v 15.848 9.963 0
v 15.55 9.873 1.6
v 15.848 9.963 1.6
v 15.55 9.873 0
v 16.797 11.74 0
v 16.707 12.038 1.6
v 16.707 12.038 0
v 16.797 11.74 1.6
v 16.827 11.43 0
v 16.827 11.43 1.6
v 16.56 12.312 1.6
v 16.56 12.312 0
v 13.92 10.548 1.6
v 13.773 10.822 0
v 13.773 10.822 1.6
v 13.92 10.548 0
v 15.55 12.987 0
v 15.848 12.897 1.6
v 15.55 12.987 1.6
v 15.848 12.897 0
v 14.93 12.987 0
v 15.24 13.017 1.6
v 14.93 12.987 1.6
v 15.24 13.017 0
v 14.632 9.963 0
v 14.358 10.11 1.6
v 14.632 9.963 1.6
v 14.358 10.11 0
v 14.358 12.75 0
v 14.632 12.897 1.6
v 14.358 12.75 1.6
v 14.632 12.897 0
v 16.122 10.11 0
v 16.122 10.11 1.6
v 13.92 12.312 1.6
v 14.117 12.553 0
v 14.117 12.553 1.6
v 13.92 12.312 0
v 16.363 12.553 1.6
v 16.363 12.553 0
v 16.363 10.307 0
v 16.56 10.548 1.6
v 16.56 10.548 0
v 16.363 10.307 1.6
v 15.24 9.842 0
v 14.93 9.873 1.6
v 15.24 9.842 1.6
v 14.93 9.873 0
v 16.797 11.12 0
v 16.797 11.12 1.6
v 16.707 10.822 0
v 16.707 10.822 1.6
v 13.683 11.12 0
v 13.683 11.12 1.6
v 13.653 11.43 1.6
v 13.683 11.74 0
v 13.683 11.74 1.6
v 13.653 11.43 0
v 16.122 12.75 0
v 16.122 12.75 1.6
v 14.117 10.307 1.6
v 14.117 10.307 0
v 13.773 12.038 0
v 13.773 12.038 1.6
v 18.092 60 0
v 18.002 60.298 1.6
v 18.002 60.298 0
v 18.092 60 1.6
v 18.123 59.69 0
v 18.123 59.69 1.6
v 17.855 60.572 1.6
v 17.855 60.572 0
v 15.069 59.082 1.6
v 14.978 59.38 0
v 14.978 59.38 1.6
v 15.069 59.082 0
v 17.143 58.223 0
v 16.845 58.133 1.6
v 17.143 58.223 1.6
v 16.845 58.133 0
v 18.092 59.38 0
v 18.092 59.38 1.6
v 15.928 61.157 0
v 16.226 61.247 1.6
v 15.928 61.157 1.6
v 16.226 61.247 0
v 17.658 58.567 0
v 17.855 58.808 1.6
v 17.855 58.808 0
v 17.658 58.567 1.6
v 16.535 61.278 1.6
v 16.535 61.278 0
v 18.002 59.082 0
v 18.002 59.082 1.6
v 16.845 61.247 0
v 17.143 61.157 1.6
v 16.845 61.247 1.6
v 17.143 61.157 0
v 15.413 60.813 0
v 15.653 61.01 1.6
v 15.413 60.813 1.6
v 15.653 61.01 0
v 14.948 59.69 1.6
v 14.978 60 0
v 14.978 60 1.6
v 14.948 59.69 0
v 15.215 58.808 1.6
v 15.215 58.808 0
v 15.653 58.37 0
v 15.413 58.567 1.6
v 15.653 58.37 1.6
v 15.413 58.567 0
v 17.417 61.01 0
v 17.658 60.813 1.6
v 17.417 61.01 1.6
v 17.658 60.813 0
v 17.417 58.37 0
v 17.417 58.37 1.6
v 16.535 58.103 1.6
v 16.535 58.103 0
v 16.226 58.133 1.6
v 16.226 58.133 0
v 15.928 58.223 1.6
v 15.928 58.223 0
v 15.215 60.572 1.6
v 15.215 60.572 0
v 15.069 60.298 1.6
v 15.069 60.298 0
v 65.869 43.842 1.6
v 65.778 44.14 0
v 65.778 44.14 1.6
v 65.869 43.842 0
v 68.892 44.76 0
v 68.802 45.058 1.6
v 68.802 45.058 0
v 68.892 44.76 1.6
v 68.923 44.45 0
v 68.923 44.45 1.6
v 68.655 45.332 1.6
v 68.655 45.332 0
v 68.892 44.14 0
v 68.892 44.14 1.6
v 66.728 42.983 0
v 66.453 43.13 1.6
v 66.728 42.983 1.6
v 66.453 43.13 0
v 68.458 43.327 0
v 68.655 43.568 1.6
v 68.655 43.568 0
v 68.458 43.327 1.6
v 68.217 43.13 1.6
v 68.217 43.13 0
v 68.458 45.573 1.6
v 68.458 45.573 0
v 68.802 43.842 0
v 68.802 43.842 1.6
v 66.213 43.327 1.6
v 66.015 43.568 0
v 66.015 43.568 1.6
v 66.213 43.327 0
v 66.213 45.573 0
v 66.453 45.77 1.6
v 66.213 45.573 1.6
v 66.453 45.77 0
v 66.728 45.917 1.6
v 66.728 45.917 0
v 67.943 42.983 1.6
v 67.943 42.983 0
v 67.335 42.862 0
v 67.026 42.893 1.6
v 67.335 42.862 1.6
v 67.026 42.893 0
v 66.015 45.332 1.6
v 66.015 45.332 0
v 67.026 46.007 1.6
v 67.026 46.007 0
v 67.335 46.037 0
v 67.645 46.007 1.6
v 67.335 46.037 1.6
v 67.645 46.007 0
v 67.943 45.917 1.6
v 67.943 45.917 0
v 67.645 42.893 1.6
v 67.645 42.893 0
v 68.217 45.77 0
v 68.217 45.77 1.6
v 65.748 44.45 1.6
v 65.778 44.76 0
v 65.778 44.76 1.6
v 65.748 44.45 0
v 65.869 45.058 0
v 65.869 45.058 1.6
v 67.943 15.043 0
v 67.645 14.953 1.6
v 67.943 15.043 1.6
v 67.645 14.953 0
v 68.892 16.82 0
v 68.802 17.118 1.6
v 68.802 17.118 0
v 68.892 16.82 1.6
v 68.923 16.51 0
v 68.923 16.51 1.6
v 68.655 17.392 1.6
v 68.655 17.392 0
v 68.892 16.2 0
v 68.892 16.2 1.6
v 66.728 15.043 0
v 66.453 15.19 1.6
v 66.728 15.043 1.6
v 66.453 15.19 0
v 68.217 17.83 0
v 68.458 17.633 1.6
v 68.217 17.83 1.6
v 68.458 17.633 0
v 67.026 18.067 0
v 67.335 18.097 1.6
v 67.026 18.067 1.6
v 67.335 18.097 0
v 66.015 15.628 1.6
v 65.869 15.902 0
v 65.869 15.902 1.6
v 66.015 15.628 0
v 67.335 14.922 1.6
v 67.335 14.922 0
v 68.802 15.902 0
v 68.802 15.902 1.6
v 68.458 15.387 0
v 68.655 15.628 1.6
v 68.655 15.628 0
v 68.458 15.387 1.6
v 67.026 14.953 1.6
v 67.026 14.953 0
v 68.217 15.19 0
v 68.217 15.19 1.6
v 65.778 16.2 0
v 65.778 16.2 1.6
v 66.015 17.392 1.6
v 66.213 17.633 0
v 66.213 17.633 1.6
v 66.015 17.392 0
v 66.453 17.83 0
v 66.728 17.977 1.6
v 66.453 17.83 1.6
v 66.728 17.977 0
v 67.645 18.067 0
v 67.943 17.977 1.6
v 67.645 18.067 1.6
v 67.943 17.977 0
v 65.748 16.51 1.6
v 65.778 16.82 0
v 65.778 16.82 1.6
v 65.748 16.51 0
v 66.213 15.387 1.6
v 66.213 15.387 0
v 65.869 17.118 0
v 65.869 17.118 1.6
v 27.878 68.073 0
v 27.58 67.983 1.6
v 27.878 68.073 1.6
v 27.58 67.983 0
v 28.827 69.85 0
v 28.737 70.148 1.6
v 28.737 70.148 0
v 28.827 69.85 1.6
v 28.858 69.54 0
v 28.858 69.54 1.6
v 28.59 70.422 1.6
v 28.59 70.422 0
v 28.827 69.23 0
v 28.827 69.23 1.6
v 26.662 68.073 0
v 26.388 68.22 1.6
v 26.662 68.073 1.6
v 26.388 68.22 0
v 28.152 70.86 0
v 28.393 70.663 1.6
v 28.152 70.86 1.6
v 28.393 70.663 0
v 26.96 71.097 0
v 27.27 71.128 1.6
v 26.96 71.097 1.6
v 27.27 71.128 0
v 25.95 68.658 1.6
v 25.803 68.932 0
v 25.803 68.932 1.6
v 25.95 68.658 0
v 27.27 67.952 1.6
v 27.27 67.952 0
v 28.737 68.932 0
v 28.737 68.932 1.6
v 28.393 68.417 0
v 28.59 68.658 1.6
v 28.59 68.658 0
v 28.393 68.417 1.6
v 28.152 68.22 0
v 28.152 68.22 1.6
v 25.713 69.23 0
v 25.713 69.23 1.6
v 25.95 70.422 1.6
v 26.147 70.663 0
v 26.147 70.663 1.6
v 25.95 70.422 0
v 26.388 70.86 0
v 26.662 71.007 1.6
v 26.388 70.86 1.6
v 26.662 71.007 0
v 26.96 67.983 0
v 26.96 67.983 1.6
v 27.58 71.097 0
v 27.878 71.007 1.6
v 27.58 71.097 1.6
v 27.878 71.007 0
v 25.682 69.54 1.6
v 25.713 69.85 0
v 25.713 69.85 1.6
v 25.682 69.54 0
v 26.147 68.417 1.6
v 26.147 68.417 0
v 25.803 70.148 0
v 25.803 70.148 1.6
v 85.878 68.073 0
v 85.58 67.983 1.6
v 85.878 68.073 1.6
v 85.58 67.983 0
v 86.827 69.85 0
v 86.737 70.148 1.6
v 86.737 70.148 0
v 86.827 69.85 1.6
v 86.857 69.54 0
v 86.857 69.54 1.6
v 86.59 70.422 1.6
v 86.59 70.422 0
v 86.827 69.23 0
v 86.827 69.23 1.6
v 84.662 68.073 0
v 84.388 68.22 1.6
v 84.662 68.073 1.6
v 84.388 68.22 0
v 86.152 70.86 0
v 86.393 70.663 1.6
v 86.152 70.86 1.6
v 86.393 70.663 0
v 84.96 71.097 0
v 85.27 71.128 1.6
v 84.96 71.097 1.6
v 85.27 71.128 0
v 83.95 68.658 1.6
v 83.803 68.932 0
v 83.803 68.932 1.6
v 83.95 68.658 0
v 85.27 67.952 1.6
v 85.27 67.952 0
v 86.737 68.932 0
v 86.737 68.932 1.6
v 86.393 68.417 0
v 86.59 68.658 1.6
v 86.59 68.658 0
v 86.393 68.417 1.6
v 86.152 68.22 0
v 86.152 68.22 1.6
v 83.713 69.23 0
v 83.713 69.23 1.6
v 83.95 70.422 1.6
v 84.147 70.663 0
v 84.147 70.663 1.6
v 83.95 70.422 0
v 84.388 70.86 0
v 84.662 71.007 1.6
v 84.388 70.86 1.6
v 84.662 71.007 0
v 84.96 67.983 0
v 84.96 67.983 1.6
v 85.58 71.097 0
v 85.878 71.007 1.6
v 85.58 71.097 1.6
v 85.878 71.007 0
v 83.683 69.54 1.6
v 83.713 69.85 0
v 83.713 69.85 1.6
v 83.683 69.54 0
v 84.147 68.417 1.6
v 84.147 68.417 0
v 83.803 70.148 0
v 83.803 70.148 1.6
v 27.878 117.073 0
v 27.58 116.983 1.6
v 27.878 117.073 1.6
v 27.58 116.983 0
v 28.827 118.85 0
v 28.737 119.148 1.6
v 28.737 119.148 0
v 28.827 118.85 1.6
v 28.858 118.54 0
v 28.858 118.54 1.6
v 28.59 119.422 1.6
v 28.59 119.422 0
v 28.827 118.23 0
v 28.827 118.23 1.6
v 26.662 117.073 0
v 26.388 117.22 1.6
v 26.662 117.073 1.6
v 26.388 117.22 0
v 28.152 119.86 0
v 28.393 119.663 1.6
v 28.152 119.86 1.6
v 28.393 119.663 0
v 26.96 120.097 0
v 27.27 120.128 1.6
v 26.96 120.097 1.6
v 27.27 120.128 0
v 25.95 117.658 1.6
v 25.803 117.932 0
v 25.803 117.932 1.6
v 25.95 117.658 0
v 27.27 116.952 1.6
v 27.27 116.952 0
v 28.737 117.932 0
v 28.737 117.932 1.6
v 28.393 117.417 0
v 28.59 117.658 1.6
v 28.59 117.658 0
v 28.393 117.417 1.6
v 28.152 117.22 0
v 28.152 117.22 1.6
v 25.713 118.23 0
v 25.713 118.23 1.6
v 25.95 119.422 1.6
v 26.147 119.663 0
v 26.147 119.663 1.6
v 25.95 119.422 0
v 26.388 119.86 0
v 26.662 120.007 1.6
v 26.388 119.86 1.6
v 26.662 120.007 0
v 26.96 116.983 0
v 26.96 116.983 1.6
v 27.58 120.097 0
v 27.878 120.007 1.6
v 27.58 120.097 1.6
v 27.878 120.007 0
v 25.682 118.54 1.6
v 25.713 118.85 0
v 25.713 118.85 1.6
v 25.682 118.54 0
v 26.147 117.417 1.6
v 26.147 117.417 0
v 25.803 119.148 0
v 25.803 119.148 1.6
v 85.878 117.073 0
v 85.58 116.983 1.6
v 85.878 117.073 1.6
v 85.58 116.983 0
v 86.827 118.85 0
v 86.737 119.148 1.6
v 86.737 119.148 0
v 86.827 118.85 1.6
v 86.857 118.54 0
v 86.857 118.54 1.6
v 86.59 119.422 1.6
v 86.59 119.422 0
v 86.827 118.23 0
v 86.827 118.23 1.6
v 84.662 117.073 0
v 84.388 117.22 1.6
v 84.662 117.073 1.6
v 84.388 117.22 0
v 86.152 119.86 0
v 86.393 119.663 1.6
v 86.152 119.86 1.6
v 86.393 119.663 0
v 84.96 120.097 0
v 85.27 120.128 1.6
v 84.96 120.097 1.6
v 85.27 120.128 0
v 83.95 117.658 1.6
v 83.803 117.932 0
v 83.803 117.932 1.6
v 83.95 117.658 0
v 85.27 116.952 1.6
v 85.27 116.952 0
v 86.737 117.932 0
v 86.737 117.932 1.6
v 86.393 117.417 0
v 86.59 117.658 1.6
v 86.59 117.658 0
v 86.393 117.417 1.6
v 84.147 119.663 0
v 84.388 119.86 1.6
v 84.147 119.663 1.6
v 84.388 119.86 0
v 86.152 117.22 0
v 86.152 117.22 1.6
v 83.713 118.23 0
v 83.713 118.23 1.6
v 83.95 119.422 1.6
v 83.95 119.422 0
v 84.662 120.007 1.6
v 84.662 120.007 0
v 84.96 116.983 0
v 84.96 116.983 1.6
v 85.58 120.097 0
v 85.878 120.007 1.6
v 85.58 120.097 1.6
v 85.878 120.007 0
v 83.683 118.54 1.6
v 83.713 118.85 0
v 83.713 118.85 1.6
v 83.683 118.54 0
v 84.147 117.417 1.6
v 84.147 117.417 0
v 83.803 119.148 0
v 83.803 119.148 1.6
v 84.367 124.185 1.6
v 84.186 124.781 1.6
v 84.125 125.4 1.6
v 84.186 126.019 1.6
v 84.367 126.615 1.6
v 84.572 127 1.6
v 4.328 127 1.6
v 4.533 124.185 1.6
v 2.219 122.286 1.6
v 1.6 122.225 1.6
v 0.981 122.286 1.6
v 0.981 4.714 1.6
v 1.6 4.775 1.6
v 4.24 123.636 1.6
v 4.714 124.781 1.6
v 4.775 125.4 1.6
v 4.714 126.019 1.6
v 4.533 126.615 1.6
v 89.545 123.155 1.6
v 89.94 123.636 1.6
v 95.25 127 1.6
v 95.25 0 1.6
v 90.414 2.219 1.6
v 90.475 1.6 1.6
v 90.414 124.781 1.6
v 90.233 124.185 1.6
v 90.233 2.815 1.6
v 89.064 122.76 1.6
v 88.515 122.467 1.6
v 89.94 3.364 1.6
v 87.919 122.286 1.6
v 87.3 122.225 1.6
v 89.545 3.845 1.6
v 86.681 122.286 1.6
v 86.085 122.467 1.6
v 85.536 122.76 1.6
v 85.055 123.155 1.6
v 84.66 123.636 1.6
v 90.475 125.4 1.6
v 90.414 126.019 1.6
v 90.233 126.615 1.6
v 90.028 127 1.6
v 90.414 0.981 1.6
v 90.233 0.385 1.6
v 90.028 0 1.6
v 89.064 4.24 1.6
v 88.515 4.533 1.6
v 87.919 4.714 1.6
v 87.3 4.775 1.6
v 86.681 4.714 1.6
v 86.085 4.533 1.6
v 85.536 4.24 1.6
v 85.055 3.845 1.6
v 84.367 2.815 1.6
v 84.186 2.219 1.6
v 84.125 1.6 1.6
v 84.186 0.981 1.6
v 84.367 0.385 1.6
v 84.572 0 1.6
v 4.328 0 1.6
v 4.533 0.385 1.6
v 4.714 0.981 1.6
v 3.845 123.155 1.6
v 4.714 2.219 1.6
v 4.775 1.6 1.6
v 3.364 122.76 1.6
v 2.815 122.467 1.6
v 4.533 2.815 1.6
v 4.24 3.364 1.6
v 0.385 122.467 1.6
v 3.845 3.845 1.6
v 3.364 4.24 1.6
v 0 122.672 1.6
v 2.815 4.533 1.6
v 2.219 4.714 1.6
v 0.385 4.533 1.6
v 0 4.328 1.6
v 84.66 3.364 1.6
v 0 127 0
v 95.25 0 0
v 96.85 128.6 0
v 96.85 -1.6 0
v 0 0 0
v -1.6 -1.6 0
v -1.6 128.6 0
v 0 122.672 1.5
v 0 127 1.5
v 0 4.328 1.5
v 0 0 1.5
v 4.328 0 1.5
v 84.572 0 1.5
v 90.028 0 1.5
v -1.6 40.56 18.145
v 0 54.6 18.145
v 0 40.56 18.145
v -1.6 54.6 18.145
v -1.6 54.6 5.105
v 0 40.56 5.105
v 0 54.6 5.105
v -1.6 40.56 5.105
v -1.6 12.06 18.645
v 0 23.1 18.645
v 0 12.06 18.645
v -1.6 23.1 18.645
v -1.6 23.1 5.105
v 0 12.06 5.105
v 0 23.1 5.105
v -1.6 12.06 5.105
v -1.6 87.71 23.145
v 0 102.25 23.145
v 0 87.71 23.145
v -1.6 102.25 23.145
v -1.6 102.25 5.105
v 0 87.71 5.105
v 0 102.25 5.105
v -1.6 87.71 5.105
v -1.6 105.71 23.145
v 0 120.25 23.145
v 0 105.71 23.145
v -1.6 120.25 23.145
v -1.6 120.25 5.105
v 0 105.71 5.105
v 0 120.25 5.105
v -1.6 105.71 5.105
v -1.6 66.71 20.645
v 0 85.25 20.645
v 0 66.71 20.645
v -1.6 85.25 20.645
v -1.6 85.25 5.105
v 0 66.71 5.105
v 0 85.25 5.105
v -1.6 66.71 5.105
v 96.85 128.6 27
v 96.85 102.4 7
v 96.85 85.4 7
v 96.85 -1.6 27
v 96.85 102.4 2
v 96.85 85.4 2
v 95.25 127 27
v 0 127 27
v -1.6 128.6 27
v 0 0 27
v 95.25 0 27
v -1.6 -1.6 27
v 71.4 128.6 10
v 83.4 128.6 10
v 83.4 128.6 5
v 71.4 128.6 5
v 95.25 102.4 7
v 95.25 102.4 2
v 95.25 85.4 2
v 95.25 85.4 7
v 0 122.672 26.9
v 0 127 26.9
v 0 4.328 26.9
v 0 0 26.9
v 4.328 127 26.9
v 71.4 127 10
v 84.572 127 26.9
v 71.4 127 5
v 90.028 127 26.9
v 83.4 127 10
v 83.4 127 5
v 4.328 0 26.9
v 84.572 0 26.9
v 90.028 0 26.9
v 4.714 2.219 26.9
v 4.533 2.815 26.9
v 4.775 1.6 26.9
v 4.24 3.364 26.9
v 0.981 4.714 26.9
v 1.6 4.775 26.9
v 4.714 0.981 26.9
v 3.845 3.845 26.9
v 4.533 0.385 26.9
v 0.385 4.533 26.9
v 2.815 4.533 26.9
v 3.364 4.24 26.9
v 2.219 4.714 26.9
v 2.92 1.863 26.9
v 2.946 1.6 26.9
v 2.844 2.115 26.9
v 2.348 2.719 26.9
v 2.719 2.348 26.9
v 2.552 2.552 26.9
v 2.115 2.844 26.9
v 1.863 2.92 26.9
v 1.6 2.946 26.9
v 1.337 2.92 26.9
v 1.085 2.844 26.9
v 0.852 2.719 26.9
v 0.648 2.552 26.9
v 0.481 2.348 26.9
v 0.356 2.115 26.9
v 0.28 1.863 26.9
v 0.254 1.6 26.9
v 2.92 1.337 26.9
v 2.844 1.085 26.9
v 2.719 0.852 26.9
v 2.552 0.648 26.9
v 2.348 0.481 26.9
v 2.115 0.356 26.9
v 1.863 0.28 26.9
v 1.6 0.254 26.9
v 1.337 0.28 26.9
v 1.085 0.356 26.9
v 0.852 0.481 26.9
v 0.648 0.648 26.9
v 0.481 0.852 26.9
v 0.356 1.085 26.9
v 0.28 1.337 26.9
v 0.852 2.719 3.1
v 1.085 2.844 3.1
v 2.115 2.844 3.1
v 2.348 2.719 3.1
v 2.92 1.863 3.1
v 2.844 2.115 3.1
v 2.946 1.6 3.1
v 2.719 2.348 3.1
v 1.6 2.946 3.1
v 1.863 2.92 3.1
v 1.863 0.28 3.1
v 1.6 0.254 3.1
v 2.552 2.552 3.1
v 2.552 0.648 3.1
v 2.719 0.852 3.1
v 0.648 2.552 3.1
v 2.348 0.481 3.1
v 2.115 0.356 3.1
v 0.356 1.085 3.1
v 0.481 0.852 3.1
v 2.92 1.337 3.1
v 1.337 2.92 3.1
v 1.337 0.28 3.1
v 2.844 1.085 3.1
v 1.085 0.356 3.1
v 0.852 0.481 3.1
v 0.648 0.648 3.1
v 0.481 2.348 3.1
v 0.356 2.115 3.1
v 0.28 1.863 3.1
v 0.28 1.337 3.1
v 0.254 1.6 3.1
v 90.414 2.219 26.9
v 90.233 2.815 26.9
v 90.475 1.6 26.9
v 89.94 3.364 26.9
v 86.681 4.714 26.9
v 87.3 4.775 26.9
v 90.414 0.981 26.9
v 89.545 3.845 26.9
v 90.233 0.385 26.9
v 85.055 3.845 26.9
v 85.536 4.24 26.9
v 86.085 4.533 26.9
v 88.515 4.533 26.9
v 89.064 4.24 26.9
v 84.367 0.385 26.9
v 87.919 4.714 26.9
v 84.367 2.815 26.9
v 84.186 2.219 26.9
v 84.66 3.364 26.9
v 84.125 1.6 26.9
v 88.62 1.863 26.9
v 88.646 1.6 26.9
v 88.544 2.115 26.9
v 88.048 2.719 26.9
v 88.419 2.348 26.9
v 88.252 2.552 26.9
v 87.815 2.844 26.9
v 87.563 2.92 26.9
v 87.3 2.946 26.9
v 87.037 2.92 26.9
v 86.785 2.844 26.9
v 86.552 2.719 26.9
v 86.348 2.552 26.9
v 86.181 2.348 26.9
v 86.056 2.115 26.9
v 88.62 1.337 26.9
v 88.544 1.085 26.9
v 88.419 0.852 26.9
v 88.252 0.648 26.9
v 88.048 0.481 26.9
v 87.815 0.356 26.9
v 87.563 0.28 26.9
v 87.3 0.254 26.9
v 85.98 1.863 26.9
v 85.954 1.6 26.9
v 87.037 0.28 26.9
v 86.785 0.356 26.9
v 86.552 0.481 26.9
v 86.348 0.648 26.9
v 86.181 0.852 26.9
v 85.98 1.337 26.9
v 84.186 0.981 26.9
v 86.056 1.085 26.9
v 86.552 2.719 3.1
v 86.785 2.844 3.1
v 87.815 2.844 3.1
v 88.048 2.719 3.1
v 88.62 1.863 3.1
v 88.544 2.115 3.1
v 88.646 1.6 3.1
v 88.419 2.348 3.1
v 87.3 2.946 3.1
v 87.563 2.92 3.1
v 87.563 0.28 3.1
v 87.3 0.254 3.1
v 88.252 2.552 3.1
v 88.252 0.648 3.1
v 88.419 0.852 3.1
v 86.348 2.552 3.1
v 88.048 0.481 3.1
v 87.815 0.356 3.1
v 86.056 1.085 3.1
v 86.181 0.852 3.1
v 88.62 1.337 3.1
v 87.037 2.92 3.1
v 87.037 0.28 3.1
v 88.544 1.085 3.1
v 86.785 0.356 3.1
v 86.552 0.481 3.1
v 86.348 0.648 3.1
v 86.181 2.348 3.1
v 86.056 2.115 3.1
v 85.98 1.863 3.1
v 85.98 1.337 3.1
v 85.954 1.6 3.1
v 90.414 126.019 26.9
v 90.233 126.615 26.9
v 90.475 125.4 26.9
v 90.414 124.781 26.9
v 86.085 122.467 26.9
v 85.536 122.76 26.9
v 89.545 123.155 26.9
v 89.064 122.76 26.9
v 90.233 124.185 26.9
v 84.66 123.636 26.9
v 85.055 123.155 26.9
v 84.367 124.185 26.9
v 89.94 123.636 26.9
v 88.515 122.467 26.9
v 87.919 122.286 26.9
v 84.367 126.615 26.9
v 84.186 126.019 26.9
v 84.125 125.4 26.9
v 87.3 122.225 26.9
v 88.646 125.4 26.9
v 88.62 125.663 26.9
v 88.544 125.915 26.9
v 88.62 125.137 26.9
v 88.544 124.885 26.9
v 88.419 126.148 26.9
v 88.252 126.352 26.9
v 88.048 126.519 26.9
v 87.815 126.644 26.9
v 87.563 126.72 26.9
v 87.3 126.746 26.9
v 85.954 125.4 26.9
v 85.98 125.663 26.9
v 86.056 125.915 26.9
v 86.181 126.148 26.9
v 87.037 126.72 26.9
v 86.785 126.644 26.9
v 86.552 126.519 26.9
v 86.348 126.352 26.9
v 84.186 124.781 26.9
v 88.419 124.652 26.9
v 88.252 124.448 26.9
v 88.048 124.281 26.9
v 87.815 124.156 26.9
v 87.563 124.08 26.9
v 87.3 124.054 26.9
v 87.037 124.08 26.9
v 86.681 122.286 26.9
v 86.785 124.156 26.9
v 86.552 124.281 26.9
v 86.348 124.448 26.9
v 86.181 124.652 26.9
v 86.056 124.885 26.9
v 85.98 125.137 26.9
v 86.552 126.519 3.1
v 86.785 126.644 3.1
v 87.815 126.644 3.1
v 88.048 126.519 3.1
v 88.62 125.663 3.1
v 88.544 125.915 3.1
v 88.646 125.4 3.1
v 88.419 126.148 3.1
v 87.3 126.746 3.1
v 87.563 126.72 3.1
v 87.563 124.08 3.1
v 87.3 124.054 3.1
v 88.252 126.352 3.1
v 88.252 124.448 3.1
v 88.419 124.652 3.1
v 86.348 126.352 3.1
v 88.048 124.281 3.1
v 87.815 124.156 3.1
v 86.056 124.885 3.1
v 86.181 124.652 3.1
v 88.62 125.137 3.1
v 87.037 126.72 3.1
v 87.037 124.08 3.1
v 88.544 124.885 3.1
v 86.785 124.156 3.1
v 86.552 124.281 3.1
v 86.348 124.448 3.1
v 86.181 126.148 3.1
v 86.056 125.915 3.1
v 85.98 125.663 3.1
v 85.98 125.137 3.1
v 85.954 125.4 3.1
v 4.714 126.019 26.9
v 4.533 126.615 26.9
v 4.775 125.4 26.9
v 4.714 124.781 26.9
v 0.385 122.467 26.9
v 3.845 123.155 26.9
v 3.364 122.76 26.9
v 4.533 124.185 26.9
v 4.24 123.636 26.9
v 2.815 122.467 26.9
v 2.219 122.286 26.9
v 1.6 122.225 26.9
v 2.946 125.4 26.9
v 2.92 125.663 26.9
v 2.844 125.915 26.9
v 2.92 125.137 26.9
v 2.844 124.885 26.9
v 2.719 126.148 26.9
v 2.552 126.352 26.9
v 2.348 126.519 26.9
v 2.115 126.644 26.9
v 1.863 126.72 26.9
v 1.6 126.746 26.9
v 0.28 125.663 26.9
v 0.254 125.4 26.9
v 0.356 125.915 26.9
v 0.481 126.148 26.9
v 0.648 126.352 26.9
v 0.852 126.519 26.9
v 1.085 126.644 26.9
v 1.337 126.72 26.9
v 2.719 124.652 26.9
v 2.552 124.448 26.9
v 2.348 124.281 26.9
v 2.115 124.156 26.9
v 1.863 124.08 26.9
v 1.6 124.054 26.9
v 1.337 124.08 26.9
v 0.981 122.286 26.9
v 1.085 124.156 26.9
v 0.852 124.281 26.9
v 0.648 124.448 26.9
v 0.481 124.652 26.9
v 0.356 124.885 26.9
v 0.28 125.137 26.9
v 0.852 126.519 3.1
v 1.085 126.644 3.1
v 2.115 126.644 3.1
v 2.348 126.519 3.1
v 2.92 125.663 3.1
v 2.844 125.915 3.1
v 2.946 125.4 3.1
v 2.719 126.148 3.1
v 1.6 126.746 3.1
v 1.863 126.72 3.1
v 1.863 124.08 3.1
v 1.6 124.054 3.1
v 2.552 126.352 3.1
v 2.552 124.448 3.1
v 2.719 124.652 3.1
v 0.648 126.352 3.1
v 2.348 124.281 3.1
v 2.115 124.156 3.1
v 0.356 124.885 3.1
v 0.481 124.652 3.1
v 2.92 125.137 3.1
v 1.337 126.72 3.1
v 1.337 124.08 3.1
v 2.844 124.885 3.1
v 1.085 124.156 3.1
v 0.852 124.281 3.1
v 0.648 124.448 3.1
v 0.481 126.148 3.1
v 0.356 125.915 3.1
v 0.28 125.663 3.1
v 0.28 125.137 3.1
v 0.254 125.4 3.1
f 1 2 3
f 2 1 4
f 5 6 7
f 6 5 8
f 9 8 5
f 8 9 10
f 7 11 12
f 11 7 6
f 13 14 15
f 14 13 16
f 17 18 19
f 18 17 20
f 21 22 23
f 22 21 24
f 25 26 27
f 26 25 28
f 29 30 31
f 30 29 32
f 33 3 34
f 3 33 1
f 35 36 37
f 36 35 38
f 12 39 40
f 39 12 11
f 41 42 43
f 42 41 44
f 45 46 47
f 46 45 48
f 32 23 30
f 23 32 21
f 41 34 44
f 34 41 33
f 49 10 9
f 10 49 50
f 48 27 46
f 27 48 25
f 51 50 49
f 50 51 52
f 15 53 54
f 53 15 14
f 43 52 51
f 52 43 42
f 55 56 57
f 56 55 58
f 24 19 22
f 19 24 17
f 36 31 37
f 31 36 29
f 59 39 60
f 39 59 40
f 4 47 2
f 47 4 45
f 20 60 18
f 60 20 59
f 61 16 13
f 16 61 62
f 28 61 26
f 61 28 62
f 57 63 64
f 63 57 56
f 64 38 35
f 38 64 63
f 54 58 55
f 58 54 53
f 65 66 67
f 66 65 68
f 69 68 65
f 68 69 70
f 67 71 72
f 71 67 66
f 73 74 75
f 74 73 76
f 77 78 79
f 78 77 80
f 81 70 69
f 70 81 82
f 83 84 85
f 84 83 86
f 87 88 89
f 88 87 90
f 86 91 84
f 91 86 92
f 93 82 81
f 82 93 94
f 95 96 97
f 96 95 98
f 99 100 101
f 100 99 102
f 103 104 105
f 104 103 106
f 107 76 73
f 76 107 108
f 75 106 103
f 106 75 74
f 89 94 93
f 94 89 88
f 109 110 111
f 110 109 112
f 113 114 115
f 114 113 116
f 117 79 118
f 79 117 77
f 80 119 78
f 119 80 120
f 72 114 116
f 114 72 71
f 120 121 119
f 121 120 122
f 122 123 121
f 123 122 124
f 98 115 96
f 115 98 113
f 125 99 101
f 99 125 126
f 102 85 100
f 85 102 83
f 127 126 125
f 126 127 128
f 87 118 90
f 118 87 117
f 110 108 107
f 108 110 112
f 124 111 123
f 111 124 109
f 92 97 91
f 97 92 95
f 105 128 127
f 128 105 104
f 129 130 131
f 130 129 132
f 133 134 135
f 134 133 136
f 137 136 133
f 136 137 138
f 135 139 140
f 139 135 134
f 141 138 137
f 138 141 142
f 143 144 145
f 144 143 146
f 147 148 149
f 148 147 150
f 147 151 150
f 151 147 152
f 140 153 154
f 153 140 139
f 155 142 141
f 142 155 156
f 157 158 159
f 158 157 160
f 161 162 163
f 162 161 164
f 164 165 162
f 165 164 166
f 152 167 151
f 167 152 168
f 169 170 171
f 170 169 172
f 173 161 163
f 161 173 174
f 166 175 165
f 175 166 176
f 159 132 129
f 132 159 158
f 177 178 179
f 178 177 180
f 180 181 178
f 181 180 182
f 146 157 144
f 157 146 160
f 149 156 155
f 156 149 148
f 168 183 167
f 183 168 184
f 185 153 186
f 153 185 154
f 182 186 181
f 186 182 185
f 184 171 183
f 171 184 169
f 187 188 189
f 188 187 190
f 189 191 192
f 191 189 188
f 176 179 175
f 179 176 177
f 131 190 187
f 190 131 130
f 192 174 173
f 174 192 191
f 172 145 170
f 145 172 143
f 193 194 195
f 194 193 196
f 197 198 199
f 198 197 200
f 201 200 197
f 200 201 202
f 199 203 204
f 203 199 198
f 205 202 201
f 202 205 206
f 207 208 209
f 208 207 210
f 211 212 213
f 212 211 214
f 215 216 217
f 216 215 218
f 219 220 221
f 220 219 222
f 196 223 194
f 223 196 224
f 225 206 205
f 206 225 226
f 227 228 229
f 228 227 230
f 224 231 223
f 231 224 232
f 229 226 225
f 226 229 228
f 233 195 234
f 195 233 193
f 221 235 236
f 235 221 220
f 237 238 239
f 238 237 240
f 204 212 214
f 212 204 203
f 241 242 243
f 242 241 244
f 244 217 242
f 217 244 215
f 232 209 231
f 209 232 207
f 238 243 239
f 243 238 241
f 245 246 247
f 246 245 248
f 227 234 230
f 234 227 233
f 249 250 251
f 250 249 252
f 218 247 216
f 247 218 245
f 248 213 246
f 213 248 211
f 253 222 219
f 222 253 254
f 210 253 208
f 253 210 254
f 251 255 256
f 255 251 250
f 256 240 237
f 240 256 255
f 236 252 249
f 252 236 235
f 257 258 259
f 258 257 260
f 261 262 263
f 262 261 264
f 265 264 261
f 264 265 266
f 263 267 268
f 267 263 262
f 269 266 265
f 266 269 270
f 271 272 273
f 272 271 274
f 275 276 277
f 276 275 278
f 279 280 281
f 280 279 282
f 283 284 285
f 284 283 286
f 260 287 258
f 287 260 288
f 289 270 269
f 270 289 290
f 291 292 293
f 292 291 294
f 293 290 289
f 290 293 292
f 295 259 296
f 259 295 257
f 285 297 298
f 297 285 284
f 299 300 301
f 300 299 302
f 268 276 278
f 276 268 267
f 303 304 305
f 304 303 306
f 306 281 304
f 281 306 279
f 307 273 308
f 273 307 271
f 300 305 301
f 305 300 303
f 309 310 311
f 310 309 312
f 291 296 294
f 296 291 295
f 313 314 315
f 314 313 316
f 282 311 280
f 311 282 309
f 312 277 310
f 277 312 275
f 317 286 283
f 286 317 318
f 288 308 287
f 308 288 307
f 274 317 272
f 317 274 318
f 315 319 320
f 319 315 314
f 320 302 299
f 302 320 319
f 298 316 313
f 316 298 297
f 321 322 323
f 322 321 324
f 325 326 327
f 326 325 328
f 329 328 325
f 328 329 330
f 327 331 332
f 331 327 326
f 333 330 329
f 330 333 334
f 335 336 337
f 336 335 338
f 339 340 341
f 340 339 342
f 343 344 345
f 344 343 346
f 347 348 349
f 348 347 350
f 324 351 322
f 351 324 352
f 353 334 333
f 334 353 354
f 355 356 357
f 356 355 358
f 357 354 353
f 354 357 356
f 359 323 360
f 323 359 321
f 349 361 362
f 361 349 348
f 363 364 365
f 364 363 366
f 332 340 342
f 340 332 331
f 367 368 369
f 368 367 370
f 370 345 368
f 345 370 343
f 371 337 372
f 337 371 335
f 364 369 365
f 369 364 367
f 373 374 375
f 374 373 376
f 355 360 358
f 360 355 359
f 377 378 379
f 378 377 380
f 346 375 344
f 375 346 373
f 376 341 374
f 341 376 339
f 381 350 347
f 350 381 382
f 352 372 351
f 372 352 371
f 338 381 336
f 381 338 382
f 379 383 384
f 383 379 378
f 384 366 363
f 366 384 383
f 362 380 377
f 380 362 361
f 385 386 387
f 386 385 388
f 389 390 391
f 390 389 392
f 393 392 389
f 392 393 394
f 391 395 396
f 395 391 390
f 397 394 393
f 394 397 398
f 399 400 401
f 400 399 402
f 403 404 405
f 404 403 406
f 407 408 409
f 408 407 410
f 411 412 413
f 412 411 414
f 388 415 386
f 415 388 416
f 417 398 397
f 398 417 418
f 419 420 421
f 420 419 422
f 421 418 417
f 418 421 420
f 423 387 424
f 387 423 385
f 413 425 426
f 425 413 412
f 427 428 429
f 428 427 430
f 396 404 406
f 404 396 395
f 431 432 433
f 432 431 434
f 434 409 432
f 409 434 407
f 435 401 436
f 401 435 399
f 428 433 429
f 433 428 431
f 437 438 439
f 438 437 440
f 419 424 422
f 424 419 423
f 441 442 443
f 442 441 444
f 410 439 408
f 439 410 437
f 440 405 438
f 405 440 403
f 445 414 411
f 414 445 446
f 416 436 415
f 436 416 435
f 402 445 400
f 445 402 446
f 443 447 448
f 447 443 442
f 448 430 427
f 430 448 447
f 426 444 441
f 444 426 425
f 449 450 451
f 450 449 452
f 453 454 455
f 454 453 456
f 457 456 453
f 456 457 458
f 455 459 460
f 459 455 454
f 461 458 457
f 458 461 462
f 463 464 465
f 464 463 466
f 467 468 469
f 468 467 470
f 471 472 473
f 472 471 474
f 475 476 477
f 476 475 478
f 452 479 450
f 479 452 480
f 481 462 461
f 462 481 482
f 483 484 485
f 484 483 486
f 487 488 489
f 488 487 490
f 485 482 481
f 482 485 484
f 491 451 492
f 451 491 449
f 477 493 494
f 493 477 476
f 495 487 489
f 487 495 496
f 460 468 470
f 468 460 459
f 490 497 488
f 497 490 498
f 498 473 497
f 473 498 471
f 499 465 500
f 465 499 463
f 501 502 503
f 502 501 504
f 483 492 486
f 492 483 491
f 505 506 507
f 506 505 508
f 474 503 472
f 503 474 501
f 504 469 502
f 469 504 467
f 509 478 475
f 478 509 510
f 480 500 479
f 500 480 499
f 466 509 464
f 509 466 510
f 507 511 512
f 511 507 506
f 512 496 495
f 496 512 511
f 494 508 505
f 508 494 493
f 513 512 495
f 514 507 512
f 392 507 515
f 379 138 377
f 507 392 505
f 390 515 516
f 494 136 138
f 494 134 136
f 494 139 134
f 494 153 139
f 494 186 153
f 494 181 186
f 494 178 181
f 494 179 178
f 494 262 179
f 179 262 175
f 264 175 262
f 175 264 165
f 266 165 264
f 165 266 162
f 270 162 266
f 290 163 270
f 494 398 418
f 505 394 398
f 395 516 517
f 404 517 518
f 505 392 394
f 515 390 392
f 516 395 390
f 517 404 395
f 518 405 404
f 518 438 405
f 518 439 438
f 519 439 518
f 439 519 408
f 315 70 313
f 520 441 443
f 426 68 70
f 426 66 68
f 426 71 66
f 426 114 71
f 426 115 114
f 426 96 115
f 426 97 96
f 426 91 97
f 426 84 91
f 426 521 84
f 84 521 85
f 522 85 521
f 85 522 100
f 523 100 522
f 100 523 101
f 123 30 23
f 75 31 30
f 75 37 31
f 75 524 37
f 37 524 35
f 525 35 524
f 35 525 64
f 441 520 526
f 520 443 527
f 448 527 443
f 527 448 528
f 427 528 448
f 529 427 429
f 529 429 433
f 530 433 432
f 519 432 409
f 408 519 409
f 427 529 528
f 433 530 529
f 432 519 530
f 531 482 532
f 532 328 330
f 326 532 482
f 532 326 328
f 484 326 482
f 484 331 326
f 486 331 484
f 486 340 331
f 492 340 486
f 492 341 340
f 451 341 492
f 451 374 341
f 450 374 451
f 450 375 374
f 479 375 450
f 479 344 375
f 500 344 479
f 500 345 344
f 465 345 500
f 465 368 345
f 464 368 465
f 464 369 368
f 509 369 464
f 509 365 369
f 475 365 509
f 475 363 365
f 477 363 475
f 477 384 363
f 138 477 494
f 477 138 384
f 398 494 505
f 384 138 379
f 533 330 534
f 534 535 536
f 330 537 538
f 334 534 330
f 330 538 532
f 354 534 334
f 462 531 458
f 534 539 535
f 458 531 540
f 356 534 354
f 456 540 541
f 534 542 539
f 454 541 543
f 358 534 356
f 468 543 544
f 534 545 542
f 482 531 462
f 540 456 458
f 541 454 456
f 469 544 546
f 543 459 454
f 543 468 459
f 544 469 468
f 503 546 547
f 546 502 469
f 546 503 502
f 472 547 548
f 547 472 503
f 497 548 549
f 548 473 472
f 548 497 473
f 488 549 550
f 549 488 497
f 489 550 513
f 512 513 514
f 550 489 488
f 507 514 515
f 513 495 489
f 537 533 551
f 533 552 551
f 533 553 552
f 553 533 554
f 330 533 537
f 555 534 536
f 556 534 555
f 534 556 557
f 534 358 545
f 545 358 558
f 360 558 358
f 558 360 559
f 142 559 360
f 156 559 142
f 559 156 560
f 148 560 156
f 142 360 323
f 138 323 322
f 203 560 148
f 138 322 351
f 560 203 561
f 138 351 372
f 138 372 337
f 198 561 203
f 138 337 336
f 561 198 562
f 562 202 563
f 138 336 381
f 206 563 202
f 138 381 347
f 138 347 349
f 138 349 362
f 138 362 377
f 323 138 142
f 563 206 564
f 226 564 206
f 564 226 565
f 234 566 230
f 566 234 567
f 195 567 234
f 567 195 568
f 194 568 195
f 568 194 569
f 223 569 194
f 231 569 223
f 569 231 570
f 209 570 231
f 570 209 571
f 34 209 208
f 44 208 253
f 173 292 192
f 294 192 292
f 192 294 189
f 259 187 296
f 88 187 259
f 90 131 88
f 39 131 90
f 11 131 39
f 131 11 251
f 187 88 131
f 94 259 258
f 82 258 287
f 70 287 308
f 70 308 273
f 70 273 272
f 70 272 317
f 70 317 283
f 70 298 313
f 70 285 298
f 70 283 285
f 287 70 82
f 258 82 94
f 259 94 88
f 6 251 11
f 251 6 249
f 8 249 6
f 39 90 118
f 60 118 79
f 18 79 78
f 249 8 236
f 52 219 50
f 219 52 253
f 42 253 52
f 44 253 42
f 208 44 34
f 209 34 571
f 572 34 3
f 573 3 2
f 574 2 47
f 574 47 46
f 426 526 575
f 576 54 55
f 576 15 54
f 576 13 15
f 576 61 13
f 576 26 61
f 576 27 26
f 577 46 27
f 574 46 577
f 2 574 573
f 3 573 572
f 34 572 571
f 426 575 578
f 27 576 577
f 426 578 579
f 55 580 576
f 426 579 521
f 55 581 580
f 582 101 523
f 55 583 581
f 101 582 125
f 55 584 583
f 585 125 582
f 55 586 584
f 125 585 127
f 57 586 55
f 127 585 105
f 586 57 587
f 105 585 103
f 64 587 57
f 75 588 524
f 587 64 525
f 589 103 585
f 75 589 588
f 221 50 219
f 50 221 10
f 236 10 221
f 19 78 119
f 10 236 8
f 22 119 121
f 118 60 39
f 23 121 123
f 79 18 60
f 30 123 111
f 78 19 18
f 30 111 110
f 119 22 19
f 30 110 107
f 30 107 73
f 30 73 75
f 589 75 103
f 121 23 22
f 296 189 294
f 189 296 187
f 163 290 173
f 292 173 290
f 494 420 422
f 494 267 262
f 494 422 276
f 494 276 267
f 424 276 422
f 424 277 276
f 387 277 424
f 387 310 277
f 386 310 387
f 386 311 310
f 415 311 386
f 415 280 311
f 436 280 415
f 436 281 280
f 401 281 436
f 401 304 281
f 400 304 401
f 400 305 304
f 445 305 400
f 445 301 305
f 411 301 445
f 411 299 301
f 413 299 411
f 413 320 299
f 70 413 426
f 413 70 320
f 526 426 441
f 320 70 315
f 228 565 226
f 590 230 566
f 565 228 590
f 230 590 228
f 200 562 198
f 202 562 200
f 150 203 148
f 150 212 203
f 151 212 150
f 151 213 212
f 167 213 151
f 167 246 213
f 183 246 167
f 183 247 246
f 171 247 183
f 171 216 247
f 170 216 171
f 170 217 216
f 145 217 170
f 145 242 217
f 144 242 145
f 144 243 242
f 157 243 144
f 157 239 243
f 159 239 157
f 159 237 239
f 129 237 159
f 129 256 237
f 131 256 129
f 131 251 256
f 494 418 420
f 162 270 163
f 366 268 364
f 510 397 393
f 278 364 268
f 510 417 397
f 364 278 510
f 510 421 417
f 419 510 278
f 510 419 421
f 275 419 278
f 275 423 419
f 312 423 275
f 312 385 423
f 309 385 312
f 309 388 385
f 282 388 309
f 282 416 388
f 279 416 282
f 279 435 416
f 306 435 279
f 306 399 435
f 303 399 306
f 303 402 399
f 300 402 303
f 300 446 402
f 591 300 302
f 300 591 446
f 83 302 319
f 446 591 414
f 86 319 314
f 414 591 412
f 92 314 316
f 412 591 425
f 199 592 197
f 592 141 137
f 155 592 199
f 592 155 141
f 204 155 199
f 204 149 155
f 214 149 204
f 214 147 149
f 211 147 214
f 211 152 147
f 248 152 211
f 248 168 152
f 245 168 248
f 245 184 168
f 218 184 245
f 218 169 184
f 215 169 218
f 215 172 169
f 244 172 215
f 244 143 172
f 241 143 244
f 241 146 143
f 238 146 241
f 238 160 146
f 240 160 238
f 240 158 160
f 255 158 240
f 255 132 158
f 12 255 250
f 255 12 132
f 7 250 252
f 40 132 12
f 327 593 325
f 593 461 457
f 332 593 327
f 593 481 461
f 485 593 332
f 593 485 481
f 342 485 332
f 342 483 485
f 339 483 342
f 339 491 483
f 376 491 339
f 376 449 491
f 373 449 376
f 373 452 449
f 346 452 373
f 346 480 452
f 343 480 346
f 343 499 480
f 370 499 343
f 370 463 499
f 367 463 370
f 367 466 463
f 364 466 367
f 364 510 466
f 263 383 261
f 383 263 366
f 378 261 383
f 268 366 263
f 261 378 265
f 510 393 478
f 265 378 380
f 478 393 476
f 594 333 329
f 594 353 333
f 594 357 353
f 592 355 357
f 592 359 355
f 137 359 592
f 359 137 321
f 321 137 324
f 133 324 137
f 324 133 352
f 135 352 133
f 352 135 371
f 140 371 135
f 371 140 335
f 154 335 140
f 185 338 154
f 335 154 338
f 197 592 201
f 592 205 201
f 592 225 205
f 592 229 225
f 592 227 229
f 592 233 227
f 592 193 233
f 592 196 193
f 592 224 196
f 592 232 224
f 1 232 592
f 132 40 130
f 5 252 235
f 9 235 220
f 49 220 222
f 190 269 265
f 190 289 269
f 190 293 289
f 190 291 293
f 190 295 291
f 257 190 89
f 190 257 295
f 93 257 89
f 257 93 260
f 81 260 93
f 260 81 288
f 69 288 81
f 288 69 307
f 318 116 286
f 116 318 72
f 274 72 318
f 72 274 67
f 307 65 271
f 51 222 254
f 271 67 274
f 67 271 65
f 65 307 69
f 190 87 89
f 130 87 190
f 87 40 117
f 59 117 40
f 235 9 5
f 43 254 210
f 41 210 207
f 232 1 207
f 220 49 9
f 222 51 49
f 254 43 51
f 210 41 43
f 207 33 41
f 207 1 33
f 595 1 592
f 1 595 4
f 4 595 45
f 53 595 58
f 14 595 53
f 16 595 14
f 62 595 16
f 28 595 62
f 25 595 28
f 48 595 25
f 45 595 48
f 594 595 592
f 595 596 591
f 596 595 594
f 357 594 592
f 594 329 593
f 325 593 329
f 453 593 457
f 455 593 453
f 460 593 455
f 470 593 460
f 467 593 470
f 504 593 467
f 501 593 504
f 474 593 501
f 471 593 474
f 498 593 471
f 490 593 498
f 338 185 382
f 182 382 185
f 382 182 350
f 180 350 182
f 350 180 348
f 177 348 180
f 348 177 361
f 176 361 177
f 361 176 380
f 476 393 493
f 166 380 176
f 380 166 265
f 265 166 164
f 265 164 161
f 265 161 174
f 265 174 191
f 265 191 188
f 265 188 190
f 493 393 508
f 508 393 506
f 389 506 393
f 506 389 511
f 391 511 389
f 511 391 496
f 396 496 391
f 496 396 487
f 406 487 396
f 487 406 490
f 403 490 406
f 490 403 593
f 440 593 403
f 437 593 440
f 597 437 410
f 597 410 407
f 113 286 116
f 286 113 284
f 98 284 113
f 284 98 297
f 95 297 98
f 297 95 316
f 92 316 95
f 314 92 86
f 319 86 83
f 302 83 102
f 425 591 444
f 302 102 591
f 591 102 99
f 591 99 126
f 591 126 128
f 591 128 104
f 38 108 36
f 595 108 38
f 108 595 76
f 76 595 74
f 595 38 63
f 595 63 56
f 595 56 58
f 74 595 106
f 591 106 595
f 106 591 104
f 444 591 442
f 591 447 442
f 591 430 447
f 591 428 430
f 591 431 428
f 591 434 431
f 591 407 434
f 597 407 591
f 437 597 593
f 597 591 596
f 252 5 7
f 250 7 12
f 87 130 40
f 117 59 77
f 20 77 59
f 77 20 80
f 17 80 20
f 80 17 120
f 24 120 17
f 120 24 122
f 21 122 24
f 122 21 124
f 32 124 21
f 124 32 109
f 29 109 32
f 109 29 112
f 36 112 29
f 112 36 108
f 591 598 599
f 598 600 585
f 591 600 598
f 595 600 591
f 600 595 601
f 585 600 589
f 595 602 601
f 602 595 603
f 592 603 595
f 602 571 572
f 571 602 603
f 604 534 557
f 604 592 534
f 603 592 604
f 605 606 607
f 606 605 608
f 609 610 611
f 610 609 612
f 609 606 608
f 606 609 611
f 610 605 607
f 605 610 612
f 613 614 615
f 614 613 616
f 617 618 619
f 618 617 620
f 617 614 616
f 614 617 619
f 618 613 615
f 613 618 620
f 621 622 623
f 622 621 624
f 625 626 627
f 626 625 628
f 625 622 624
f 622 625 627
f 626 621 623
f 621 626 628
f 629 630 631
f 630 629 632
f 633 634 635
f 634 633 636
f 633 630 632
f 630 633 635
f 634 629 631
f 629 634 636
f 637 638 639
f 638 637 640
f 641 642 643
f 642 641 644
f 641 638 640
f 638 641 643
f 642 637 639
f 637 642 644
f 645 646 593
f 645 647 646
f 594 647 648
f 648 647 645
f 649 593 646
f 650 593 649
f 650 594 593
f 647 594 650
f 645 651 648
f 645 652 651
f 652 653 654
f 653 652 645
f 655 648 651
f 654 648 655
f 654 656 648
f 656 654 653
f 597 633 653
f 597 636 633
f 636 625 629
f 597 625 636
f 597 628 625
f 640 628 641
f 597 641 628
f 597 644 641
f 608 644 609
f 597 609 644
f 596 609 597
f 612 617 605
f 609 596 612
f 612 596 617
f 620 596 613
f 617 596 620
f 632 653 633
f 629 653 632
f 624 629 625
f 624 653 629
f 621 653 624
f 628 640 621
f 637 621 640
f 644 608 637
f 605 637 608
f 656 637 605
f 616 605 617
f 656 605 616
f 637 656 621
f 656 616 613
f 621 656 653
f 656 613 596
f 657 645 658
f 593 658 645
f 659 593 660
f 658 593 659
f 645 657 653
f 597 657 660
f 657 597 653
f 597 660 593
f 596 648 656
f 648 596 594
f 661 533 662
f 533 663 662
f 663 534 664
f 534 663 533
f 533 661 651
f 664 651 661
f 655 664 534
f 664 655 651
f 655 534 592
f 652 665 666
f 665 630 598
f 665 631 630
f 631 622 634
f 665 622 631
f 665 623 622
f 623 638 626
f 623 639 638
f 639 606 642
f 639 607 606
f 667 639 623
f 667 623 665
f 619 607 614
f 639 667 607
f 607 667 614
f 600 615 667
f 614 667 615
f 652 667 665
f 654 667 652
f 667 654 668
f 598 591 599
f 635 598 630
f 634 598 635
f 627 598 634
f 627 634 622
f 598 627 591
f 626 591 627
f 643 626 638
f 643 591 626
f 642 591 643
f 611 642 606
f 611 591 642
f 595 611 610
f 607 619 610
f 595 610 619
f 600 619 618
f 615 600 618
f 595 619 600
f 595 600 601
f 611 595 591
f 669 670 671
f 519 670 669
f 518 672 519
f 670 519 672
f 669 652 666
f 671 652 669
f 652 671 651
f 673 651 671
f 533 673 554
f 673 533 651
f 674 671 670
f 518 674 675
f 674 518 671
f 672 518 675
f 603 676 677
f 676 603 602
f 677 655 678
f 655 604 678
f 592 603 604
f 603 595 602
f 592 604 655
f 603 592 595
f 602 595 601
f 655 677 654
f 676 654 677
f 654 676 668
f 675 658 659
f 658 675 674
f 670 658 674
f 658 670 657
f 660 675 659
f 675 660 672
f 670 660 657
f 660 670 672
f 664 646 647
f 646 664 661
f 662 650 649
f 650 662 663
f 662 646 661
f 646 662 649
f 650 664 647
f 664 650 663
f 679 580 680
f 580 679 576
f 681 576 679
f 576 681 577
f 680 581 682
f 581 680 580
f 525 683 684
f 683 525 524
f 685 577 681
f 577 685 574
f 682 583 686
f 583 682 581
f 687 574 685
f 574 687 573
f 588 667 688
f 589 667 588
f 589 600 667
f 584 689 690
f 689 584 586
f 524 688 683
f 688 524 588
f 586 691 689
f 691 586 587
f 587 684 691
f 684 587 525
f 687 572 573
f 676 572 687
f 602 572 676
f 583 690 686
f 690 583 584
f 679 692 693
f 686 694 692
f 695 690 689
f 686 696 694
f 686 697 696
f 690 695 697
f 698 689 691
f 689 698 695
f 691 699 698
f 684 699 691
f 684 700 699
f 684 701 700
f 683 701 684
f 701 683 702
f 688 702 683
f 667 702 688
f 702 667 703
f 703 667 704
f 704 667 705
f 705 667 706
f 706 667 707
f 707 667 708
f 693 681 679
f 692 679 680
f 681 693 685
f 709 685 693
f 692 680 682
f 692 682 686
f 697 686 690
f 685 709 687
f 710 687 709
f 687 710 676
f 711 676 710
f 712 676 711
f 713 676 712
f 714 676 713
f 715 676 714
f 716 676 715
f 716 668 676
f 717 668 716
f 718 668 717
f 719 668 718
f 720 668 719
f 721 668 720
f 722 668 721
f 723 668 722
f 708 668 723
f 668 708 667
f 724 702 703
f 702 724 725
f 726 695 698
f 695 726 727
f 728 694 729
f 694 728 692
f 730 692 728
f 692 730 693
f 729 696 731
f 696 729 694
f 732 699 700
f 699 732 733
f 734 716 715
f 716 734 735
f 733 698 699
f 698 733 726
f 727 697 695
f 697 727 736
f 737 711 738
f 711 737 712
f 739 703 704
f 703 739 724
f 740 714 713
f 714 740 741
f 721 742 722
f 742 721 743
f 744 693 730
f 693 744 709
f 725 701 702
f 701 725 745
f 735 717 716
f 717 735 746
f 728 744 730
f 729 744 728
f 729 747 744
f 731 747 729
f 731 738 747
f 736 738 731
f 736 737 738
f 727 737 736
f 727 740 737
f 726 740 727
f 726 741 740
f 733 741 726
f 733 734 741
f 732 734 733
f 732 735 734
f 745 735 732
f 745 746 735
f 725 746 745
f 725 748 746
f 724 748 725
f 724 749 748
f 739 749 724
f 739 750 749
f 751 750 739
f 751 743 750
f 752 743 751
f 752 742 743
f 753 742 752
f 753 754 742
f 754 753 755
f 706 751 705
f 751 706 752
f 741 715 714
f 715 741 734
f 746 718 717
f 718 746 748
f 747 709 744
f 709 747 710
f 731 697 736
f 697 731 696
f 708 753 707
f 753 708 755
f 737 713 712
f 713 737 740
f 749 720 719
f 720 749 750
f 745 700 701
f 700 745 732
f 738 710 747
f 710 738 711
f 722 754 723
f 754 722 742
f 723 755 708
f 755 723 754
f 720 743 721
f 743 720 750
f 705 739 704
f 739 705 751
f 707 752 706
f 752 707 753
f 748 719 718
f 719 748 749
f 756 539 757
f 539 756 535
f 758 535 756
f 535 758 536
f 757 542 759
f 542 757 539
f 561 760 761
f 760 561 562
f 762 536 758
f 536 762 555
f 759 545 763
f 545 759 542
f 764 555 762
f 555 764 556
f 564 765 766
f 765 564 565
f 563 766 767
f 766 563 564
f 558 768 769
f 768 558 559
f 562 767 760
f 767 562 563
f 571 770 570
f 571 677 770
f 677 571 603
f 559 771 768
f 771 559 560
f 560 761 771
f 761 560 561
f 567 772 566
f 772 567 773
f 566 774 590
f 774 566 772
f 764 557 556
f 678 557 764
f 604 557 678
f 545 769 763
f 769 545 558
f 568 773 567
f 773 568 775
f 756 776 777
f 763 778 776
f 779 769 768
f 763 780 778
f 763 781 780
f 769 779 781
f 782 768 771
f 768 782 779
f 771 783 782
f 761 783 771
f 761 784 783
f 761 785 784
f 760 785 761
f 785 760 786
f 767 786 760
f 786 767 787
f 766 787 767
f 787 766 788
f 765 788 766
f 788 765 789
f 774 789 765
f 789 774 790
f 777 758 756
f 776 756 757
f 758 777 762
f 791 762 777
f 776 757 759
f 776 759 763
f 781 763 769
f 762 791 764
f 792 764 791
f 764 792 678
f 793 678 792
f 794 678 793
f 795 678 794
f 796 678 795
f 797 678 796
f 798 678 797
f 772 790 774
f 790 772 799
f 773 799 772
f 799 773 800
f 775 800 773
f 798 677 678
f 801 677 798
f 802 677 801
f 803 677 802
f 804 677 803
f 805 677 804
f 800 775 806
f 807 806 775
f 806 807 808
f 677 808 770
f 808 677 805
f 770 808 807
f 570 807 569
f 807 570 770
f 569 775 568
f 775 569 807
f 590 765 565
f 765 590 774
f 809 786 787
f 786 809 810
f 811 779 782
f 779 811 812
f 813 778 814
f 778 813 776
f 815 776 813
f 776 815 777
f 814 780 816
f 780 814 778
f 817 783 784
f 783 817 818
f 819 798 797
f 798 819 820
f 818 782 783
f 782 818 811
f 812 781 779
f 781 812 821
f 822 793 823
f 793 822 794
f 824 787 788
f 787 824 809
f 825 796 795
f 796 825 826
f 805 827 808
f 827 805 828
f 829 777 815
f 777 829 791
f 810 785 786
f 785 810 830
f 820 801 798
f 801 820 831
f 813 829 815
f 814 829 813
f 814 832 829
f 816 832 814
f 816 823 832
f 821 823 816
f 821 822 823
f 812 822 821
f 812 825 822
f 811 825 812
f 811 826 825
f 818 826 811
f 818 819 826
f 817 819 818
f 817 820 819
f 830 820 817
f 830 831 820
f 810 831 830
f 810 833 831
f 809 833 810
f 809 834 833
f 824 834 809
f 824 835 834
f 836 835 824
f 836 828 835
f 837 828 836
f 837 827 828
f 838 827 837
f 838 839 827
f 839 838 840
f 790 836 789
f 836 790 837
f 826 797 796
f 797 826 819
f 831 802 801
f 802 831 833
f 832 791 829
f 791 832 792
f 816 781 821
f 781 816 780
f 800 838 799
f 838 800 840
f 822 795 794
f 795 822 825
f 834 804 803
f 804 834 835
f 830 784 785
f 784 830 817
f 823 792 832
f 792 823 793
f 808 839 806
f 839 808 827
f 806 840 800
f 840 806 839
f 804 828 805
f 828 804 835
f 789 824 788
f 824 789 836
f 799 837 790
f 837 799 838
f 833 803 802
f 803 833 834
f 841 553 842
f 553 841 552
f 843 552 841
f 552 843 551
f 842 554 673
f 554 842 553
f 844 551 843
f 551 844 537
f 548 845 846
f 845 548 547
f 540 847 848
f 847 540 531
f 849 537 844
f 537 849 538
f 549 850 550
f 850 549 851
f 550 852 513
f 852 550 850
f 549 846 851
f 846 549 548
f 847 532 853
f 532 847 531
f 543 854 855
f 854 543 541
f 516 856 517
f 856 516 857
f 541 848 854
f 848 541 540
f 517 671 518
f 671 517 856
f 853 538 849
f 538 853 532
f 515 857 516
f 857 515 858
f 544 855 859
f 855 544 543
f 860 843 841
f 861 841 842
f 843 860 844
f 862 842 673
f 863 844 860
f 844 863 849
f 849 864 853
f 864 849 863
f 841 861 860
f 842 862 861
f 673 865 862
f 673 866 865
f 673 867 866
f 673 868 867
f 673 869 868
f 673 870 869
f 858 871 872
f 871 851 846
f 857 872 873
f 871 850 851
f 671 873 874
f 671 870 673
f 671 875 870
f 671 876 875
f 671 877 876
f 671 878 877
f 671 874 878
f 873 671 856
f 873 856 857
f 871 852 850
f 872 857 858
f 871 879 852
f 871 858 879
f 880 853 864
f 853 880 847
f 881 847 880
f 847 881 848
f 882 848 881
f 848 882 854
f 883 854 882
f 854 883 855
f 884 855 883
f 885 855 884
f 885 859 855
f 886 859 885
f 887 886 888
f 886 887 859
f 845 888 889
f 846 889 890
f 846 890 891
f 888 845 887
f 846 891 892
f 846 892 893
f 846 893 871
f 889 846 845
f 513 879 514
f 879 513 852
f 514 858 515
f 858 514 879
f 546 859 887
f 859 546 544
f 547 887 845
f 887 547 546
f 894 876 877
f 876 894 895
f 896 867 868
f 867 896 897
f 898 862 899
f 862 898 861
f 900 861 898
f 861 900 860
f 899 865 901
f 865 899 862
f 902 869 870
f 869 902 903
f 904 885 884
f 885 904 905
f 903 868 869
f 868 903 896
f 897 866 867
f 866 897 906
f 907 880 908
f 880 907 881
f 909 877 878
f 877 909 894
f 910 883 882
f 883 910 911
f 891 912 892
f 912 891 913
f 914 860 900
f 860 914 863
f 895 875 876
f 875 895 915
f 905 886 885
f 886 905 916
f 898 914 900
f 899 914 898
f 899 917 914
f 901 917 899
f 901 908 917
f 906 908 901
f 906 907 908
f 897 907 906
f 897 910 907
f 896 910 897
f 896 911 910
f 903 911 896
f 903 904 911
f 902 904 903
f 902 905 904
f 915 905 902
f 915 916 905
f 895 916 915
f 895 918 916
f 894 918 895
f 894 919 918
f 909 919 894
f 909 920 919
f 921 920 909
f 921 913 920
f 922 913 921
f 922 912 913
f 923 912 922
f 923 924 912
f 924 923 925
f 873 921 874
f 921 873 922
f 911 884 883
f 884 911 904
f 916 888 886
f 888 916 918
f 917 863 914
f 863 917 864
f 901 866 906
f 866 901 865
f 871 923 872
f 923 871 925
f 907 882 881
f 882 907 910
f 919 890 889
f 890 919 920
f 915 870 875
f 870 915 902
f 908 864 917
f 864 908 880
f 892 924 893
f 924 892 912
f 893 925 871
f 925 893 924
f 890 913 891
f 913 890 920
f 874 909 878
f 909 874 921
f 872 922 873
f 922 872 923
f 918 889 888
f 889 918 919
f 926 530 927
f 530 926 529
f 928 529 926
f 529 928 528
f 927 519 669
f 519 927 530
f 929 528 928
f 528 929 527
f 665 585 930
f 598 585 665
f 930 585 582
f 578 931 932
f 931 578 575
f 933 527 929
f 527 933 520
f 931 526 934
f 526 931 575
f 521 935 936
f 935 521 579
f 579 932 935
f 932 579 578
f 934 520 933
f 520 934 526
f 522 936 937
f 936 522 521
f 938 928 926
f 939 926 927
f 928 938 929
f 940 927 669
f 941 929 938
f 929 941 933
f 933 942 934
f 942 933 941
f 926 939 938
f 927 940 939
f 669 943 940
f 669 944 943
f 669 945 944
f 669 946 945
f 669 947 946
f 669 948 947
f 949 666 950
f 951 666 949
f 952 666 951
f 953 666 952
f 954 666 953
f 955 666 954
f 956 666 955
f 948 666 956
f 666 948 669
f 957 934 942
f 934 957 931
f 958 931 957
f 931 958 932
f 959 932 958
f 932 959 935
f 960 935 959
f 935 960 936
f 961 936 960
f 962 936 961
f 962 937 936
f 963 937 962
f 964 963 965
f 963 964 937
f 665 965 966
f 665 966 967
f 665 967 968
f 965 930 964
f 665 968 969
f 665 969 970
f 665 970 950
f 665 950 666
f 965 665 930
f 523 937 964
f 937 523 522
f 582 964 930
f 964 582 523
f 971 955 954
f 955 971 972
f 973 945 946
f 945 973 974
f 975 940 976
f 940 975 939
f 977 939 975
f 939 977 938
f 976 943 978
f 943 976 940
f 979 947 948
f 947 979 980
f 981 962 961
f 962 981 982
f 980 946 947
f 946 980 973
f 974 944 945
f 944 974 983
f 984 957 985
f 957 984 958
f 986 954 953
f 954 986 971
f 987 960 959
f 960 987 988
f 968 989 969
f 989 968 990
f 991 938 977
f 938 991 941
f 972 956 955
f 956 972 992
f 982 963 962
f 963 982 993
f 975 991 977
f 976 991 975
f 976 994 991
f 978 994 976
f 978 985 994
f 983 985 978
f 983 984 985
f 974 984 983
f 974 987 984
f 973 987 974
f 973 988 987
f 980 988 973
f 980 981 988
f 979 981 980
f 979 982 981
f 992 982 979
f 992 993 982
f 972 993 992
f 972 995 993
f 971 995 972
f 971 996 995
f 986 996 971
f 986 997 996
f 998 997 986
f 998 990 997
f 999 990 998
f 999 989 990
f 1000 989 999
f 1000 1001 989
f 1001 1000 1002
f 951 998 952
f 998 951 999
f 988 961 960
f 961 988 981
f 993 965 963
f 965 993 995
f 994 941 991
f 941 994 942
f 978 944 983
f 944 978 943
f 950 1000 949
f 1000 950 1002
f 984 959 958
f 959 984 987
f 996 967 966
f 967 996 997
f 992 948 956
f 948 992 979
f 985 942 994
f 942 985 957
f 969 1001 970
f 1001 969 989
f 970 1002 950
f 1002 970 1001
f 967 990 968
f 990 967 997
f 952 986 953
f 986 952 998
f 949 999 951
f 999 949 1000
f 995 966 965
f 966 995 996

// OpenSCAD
//
// Box for Arduino and Raspberry Pi
//

$fn=32;
e=0.1;
mm=25.4;


ardu_x = 0.05*mm;
ardu_y = 0.35*mm;
ardu_dy = 2.25*mm;
ardu_so = 0.125*mm;

flange_w = 0.5*mm;
fh_off = 0.25*mm;
flange_hole_dia = 0.15*mm;
ardu_hole_dia = 0.125*mm;

//cavity_wid = 3.5*mm;
cavity_wid = 3.75*mm;
standoff_wid = 3.5*mm;
cavity_len = 5*mm;
cavity_hgt = 1*mm;
// cavity_hgt = 0.25*mm;

thk = 1.6;

// flange_w = 0.25*mm;
// fh_off = 0.125*mm;
// flange_hole_dia = 0.1*mm;
// ardu_hole_dia = 0.125*mm;
// 
// cavity_wid = 1*mm;
// cavity_len = 1*mm;
// cavity_hgt = 0.5*mm;
// thk = .063*mm;

module hole_at( x, y, d) {
  translate( [x, y, -e])
    cylinder( h=3*mm, d=d);
}

// arduino/shield mounting holes
module ardu_holes( x, y) {
  translate( [x, y, 0]) {
    hole_at( 0.55*mm,  0.1*mm, ardu_hole_dia);
    hole_at( 0.601*mm, 2*mm, ardu_hole_dia);
    hole_at( 2.601*mm, 1.4*mm, ardu_hole_dia);
    hole_at( 2.601*mm, 0.3*mm, ardu_hole_dia);
  }
}

module rpi_holes( x, y) {
  translate( [x, y, 0]) {
    hole_at( 3.5, 3.5, ardu_hole_dia);
    hole_at( 3.5+58, 3.5, ardu_hole_dia);
    hole_at( 3.5, 3.5+49, ardu_hole_dia);
    hole_at( 3.5+58, 3.5+49, ardu_hole_dia);
  }
}

// bottom with mounting holes
module bottom() {
  difference() {
    cube( [cavity_wid, cavity_len, thk]);
    ardu_holes( ardu_x, ardu_y);
    rpi_holes( ardu_x+22.5, ardu_y+ardu_dy);
    //    ardu_holes( ardu_x, ardu_y+2.25*mm);
  }
}

// clearance around cutouts
spc = 0.05*mm;

module ardu_cutouts() {
  // USB connector
  translate( [-6, 32+spc, pcb_thk-spc])
    cube( [16, 11.5+2*spc, 10.5+2*spc]);
  // power barrel jack
  color("black") {
    translate( [-6, 3.5+spc, pcb_thk-spc])
      cube( [10, 8.5+2*spc, 11+2*spc]);
  }
}

module rpi_cutouts() {
  // USB connectors
  translate( [-6, 22+spc, pcb_thk-spc])
    cube( [16, 12+2*spc, 15.5+2*spc]);
  translate( [-6, 40+spc, pcb_thk-spc])
    cube( [16, 12+2*spc, 15.5+2*spc]);
  // Ethernet
  translate( [-6, 1+spc, pcb_thk-spc])
    cube( [10, 16+2*spc, 13+2*spc]);
}

module ardu_cuts() {
  translate( [ardu_x, ardu_y, thk+ardu_so]) {
    ardu_cutouts();
    translate( [0, ardu_dy, 0])
      rpi_cutouts();
  }
}

module side_cuts() {
  translate( [73, cavity_len-2, 5])
    cube( [12, 10, 5]);
}

module back_cuts() {
  translate( [cavity_wid-3, cavity_len-40, 2])
    cube( [10, 17, 5]);
}

// box with cavity
module box() {
  translate( [-thk, -thk, 0]) {
    difference() {
      cube( [cavity_wid+2*thk, cavity_len+2*thk, cavity_hgt+thk]);
      translate( [thk, thk, -e])
	cube( [cavity_wid, cavity_len, cavity_hgt+2*e+thk]);
      ardu_cuts();
      side_cuts();
      back_cuts();
    }
  }
}

// flange
max_wid = cavity_wid+2*flange_w;
max_len = cavity_len+2*flange_w;

module flange() {
  translate( [-flange_w, -flange_w, cavity_hgt]) {
    difference() {
      cube( [max_wid, max_len, thk]);
      translate( [flange_w, flange_w, -e])
	cube( [cavity_wid, cavity_len, thk+2*e]);
      hole_at( fh_off, fh_off, flange_hole_dia);
      hole_at( max_wid-fh_off, fh_off, flange_hole_dia);
      hole_at( fh_off, max_len-fh_off, flange_hole_dia);
      hole_at( max_wid-fh_off, max_len-fh_off, flange_hole_dia);
    }
  }
}

so_dia = 0.25*mm;
so_hol = 0.106*mm;

module so_at(x, y) {
  translate( [x, y, thk-e]) {
    difference() {
      cylinder( d=so_dia, h=cavity_hgt);
      translate( [0, 0, thk])
	cylinder( d=so_hol, h=cavity_hgt);
    }
  }
    
}

module standoffs() {
  so_at( thk, thk);
  so_at( standoff_wid-thk, thk);
  so_at( standoff_wid-thk, cavity_len-thk);
  so_at( thk, cavity_len-thk);
}

pcb_thk = 1.6;

module arduino() {
  color("blue")
    linear_extrude( height=pcb_thk)
      scale( [mm, mm, mm]) import("arduino_outline.dxf");
  // USB connector
  translate( [-6, 32, pcb_thk])
    color("gray") cube( [16, 11.5, 10.5]);
  // power barrel jack
  color("black") {
    translate( [-2, 3.5, pcb_thk])
      cube( [3, 8.5, 11]);
    translate( [0, 7.75, 6])
    rotate( [0, 90, 0])
      cylinder( d=8, h=10);
  }
}

module rpi() {
  translate( [45, 28, 0.8])
  rotate( [90, 0, 180])
	     color("green")
      import("rpi_4b.stl");
}

module boards() {
  translate( [ardu_x, ardu_y, thk+ardu_so]) {
    arduino();
    translate( [0, ardu_dy, 0])
      rpi();
  }
}

module assembly() {
  bottom();
  box();
  standoffs();
}

// projection( cut=true) translate( [0, 0, -10])  
assembly();
//boards();
